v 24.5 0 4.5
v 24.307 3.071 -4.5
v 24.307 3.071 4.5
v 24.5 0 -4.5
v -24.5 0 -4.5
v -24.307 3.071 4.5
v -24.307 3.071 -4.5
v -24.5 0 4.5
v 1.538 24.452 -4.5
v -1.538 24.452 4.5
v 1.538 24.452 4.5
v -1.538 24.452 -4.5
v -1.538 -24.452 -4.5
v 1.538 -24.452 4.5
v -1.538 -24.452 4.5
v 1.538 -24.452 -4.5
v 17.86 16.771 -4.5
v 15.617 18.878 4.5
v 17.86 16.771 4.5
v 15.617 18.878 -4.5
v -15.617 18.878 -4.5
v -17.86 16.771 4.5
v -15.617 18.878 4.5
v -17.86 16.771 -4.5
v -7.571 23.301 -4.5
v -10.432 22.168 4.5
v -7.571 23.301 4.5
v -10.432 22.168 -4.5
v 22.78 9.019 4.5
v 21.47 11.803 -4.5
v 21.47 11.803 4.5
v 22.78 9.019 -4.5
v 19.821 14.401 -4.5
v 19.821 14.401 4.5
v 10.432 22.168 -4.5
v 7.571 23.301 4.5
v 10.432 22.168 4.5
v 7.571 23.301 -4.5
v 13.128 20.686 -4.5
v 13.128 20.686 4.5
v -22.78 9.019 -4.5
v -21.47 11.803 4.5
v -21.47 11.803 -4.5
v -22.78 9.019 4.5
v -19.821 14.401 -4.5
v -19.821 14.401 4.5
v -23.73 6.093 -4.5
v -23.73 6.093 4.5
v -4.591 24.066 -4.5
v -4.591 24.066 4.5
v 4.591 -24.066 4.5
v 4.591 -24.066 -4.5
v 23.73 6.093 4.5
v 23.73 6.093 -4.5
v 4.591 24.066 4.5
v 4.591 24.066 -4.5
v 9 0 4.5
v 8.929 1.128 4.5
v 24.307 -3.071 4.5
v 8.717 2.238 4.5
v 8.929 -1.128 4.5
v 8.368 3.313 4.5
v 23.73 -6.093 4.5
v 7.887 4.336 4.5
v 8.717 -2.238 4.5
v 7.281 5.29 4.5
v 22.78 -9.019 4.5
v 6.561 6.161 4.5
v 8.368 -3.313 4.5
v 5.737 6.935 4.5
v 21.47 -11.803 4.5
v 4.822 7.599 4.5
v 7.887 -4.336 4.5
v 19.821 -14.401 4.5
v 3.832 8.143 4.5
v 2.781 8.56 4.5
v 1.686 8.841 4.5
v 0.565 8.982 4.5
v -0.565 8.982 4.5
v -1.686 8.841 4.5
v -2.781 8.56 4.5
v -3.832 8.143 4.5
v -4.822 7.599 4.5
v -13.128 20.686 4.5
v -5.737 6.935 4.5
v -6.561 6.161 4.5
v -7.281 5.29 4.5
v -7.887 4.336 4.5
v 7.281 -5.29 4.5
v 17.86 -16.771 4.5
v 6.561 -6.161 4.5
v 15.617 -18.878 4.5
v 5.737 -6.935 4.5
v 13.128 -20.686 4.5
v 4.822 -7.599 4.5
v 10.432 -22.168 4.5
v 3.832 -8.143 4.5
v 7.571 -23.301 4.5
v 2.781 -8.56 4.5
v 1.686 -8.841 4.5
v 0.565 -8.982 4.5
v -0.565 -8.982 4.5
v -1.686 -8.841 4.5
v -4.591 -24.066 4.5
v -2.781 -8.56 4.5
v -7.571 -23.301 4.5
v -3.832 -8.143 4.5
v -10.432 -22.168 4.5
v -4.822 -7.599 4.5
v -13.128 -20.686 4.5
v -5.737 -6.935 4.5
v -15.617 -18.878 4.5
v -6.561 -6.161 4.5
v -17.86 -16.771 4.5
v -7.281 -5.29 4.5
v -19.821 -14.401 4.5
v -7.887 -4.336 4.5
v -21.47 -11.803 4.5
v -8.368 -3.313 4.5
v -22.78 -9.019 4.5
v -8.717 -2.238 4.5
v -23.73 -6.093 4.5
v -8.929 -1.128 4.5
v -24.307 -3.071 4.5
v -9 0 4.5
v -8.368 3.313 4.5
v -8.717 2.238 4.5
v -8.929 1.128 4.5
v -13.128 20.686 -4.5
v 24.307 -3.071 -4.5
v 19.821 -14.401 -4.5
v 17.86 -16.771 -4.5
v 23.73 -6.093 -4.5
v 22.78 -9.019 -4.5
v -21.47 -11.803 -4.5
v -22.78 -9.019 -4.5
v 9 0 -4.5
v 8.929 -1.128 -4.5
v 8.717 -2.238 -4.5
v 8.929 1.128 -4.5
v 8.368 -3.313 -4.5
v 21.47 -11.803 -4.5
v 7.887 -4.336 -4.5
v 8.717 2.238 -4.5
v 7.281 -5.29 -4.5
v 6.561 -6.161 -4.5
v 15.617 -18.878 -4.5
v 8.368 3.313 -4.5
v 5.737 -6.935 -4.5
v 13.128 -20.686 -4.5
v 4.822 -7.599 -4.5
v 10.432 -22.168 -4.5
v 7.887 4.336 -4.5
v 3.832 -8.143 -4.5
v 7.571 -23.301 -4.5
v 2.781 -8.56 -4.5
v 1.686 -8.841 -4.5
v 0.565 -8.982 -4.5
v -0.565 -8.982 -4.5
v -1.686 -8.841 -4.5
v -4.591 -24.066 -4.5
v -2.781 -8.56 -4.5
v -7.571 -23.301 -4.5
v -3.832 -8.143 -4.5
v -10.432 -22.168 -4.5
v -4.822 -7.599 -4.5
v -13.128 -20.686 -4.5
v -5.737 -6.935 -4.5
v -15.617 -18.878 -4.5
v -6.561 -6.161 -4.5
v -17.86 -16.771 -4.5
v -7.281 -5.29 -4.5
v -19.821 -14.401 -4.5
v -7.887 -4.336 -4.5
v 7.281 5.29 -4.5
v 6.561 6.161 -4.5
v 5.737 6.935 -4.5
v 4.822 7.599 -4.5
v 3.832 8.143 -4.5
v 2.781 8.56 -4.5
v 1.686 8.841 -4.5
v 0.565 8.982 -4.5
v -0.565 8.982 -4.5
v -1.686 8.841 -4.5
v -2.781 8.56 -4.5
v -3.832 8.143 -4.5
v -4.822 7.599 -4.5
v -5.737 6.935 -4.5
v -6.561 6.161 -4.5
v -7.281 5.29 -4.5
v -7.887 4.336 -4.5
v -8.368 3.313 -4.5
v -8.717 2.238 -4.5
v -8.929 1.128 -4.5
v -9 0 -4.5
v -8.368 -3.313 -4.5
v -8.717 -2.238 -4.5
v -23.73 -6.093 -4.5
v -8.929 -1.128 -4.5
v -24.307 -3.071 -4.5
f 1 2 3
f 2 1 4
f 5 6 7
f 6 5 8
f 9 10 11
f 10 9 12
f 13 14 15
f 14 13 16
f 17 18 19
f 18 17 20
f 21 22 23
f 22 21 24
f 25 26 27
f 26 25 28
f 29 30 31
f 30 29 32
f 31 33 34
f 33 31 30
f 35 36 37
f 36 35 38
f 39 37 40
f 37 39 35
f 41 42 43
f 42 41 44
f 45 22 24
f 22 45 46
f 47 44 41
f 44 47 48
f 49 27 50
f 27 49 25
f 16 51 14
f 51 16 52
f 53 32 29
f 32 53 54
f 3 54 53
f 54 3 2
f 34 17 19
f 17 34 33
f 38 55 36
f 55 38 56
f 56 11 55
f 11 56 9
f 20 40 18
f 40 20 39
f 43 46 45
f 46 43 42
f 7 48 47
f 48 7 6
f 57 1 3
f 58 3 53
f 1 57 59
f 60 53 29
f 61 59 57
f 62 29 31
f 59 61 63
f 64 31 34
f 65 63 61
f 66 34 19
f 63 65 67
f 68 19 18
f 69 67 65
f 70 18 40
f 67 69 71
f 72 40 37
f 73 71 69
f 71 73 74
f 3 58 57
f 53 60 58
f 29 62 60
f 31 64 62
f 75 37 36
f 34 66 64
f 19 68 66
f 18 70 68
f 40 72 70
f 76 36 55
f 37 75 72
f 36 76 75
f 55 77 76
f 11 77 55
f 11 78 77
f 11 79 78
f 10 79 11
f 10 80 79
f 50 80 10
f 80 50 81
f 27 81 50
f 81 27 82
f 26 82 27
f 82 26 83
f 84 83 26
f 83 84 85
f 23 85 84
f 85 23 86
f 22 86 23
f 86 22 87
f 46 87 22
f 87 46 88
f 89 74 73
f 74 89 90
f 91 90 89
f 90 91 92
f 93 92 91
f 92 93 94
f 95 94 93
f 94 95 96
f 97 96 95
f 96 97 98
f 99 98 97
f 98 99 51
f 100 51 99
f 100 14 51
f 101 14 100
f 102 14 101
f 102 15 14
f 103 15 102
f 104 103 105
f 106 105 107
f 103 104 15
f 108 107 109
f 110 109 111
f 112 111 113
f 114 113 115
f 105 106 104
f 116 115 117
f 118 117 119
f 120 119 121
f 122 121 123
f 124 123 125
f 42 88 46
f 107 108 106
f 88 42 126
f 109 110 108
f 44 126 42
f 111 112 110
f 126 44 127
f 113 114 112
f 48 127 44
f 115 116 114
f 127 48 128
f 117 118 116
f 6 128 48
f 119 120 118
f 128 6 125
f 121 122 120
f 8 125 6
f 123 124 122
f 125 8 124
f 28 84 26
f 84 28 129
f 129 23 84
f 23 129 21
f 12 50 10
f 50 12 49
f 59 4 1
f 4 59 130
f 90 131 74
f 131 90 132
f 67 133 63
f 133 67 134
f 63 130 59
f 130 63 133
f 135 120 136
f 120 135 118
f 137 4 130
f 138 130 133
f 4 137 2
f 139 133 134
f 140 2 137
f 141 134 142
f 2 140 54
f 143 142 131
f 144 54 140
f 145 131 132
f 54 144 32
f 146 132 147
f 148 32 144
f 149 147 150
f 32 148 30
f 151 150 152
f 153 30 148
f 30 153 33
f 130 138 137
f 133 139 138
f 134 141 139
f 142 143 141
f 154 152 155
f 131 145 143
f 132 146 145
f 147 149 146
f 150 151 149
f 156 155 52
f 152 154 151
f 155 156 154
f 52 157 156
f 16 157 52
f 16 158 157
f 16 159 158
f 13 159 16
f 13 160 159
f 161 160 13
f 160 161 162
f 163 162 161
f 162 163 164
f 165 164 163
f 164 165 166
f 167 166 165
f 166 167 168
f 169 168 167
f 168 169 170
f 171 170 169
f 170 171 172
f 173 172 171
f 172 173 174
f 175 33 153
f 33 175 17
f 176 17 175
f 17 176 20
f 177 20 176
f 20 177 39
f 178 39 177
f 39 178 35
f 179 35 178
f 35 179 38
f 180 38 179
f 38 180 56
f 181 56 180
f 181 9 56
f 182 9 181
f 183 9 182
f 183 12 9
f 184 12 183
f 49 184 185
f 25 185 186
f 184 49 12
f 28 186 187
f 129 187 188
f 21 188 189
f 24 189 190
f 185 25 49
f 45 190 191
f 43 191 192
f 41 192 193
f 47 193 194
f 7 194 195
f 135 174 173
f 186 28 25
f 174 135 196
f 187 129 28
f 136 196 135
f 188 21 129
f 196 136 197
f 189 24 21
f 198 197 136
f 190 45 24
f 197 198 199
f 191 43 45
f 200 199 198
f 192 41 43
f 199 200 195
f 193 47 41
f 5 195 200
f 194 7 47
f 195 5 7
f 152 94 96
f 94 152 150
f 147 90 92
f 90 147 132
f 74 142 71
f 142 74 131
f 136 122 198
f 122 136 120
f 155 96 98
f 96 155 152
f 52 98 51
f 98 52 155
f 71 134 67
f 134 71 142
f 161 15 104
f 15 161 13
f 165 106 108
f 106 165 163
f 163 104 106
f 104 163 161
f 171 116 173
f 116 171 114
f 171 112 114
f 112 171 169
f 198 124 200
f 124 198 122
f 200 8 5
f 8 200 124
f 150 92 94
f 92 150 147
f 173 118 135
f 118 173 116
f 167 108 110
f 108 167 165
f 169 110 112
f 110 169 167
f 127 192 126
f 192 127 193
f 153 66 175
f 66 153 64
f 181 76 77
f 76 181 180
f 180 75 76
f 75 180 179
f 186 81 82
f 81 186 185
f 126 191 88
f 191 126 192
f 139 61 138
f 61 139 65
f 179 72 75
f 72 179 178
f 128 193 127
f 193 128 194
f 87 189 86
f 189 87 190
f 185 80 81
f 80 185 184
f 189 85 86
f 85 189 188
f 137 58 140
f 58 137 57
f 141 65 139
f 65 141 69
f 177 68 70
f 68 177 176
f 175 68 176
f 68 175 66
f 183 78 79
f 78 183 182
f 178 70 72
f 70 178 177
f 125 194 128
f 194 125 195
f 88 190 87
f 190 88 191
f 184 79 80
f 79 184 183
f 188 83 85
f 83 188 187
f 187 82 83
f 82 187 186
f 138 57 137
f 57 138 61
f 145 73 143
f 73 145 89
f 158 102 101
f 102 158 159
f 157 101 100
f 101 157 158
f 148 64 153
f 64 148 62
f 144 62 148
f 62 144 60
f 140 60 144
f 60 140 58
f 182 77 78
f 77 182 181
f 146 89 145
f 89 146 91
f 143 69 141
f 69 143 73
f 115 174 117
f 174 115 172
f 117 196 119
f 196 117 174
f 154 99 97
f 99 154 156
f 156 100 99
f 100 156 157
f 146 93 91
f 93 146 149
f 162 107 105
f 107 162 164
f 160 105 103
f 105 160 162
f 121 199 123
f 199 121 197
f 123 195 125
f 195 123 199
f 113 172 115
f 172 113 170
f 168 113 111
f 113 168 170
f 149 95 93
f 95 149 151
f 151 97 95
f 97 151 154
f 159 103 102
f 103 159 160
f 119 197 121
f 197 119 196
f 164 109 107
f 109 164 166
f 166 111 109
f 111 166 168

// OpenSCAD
$fn = 50;


difference() {
	union() {
		translate(v = [0, 0, -4.5000000000]) {
			cylinder(h = 9, r = 24.5000000000);
		}
	}
	union() {
		translate(v = [0, 0, -100.0000000000]) {
			cylinder(h = 200, r = 9);
		}
	}
}
